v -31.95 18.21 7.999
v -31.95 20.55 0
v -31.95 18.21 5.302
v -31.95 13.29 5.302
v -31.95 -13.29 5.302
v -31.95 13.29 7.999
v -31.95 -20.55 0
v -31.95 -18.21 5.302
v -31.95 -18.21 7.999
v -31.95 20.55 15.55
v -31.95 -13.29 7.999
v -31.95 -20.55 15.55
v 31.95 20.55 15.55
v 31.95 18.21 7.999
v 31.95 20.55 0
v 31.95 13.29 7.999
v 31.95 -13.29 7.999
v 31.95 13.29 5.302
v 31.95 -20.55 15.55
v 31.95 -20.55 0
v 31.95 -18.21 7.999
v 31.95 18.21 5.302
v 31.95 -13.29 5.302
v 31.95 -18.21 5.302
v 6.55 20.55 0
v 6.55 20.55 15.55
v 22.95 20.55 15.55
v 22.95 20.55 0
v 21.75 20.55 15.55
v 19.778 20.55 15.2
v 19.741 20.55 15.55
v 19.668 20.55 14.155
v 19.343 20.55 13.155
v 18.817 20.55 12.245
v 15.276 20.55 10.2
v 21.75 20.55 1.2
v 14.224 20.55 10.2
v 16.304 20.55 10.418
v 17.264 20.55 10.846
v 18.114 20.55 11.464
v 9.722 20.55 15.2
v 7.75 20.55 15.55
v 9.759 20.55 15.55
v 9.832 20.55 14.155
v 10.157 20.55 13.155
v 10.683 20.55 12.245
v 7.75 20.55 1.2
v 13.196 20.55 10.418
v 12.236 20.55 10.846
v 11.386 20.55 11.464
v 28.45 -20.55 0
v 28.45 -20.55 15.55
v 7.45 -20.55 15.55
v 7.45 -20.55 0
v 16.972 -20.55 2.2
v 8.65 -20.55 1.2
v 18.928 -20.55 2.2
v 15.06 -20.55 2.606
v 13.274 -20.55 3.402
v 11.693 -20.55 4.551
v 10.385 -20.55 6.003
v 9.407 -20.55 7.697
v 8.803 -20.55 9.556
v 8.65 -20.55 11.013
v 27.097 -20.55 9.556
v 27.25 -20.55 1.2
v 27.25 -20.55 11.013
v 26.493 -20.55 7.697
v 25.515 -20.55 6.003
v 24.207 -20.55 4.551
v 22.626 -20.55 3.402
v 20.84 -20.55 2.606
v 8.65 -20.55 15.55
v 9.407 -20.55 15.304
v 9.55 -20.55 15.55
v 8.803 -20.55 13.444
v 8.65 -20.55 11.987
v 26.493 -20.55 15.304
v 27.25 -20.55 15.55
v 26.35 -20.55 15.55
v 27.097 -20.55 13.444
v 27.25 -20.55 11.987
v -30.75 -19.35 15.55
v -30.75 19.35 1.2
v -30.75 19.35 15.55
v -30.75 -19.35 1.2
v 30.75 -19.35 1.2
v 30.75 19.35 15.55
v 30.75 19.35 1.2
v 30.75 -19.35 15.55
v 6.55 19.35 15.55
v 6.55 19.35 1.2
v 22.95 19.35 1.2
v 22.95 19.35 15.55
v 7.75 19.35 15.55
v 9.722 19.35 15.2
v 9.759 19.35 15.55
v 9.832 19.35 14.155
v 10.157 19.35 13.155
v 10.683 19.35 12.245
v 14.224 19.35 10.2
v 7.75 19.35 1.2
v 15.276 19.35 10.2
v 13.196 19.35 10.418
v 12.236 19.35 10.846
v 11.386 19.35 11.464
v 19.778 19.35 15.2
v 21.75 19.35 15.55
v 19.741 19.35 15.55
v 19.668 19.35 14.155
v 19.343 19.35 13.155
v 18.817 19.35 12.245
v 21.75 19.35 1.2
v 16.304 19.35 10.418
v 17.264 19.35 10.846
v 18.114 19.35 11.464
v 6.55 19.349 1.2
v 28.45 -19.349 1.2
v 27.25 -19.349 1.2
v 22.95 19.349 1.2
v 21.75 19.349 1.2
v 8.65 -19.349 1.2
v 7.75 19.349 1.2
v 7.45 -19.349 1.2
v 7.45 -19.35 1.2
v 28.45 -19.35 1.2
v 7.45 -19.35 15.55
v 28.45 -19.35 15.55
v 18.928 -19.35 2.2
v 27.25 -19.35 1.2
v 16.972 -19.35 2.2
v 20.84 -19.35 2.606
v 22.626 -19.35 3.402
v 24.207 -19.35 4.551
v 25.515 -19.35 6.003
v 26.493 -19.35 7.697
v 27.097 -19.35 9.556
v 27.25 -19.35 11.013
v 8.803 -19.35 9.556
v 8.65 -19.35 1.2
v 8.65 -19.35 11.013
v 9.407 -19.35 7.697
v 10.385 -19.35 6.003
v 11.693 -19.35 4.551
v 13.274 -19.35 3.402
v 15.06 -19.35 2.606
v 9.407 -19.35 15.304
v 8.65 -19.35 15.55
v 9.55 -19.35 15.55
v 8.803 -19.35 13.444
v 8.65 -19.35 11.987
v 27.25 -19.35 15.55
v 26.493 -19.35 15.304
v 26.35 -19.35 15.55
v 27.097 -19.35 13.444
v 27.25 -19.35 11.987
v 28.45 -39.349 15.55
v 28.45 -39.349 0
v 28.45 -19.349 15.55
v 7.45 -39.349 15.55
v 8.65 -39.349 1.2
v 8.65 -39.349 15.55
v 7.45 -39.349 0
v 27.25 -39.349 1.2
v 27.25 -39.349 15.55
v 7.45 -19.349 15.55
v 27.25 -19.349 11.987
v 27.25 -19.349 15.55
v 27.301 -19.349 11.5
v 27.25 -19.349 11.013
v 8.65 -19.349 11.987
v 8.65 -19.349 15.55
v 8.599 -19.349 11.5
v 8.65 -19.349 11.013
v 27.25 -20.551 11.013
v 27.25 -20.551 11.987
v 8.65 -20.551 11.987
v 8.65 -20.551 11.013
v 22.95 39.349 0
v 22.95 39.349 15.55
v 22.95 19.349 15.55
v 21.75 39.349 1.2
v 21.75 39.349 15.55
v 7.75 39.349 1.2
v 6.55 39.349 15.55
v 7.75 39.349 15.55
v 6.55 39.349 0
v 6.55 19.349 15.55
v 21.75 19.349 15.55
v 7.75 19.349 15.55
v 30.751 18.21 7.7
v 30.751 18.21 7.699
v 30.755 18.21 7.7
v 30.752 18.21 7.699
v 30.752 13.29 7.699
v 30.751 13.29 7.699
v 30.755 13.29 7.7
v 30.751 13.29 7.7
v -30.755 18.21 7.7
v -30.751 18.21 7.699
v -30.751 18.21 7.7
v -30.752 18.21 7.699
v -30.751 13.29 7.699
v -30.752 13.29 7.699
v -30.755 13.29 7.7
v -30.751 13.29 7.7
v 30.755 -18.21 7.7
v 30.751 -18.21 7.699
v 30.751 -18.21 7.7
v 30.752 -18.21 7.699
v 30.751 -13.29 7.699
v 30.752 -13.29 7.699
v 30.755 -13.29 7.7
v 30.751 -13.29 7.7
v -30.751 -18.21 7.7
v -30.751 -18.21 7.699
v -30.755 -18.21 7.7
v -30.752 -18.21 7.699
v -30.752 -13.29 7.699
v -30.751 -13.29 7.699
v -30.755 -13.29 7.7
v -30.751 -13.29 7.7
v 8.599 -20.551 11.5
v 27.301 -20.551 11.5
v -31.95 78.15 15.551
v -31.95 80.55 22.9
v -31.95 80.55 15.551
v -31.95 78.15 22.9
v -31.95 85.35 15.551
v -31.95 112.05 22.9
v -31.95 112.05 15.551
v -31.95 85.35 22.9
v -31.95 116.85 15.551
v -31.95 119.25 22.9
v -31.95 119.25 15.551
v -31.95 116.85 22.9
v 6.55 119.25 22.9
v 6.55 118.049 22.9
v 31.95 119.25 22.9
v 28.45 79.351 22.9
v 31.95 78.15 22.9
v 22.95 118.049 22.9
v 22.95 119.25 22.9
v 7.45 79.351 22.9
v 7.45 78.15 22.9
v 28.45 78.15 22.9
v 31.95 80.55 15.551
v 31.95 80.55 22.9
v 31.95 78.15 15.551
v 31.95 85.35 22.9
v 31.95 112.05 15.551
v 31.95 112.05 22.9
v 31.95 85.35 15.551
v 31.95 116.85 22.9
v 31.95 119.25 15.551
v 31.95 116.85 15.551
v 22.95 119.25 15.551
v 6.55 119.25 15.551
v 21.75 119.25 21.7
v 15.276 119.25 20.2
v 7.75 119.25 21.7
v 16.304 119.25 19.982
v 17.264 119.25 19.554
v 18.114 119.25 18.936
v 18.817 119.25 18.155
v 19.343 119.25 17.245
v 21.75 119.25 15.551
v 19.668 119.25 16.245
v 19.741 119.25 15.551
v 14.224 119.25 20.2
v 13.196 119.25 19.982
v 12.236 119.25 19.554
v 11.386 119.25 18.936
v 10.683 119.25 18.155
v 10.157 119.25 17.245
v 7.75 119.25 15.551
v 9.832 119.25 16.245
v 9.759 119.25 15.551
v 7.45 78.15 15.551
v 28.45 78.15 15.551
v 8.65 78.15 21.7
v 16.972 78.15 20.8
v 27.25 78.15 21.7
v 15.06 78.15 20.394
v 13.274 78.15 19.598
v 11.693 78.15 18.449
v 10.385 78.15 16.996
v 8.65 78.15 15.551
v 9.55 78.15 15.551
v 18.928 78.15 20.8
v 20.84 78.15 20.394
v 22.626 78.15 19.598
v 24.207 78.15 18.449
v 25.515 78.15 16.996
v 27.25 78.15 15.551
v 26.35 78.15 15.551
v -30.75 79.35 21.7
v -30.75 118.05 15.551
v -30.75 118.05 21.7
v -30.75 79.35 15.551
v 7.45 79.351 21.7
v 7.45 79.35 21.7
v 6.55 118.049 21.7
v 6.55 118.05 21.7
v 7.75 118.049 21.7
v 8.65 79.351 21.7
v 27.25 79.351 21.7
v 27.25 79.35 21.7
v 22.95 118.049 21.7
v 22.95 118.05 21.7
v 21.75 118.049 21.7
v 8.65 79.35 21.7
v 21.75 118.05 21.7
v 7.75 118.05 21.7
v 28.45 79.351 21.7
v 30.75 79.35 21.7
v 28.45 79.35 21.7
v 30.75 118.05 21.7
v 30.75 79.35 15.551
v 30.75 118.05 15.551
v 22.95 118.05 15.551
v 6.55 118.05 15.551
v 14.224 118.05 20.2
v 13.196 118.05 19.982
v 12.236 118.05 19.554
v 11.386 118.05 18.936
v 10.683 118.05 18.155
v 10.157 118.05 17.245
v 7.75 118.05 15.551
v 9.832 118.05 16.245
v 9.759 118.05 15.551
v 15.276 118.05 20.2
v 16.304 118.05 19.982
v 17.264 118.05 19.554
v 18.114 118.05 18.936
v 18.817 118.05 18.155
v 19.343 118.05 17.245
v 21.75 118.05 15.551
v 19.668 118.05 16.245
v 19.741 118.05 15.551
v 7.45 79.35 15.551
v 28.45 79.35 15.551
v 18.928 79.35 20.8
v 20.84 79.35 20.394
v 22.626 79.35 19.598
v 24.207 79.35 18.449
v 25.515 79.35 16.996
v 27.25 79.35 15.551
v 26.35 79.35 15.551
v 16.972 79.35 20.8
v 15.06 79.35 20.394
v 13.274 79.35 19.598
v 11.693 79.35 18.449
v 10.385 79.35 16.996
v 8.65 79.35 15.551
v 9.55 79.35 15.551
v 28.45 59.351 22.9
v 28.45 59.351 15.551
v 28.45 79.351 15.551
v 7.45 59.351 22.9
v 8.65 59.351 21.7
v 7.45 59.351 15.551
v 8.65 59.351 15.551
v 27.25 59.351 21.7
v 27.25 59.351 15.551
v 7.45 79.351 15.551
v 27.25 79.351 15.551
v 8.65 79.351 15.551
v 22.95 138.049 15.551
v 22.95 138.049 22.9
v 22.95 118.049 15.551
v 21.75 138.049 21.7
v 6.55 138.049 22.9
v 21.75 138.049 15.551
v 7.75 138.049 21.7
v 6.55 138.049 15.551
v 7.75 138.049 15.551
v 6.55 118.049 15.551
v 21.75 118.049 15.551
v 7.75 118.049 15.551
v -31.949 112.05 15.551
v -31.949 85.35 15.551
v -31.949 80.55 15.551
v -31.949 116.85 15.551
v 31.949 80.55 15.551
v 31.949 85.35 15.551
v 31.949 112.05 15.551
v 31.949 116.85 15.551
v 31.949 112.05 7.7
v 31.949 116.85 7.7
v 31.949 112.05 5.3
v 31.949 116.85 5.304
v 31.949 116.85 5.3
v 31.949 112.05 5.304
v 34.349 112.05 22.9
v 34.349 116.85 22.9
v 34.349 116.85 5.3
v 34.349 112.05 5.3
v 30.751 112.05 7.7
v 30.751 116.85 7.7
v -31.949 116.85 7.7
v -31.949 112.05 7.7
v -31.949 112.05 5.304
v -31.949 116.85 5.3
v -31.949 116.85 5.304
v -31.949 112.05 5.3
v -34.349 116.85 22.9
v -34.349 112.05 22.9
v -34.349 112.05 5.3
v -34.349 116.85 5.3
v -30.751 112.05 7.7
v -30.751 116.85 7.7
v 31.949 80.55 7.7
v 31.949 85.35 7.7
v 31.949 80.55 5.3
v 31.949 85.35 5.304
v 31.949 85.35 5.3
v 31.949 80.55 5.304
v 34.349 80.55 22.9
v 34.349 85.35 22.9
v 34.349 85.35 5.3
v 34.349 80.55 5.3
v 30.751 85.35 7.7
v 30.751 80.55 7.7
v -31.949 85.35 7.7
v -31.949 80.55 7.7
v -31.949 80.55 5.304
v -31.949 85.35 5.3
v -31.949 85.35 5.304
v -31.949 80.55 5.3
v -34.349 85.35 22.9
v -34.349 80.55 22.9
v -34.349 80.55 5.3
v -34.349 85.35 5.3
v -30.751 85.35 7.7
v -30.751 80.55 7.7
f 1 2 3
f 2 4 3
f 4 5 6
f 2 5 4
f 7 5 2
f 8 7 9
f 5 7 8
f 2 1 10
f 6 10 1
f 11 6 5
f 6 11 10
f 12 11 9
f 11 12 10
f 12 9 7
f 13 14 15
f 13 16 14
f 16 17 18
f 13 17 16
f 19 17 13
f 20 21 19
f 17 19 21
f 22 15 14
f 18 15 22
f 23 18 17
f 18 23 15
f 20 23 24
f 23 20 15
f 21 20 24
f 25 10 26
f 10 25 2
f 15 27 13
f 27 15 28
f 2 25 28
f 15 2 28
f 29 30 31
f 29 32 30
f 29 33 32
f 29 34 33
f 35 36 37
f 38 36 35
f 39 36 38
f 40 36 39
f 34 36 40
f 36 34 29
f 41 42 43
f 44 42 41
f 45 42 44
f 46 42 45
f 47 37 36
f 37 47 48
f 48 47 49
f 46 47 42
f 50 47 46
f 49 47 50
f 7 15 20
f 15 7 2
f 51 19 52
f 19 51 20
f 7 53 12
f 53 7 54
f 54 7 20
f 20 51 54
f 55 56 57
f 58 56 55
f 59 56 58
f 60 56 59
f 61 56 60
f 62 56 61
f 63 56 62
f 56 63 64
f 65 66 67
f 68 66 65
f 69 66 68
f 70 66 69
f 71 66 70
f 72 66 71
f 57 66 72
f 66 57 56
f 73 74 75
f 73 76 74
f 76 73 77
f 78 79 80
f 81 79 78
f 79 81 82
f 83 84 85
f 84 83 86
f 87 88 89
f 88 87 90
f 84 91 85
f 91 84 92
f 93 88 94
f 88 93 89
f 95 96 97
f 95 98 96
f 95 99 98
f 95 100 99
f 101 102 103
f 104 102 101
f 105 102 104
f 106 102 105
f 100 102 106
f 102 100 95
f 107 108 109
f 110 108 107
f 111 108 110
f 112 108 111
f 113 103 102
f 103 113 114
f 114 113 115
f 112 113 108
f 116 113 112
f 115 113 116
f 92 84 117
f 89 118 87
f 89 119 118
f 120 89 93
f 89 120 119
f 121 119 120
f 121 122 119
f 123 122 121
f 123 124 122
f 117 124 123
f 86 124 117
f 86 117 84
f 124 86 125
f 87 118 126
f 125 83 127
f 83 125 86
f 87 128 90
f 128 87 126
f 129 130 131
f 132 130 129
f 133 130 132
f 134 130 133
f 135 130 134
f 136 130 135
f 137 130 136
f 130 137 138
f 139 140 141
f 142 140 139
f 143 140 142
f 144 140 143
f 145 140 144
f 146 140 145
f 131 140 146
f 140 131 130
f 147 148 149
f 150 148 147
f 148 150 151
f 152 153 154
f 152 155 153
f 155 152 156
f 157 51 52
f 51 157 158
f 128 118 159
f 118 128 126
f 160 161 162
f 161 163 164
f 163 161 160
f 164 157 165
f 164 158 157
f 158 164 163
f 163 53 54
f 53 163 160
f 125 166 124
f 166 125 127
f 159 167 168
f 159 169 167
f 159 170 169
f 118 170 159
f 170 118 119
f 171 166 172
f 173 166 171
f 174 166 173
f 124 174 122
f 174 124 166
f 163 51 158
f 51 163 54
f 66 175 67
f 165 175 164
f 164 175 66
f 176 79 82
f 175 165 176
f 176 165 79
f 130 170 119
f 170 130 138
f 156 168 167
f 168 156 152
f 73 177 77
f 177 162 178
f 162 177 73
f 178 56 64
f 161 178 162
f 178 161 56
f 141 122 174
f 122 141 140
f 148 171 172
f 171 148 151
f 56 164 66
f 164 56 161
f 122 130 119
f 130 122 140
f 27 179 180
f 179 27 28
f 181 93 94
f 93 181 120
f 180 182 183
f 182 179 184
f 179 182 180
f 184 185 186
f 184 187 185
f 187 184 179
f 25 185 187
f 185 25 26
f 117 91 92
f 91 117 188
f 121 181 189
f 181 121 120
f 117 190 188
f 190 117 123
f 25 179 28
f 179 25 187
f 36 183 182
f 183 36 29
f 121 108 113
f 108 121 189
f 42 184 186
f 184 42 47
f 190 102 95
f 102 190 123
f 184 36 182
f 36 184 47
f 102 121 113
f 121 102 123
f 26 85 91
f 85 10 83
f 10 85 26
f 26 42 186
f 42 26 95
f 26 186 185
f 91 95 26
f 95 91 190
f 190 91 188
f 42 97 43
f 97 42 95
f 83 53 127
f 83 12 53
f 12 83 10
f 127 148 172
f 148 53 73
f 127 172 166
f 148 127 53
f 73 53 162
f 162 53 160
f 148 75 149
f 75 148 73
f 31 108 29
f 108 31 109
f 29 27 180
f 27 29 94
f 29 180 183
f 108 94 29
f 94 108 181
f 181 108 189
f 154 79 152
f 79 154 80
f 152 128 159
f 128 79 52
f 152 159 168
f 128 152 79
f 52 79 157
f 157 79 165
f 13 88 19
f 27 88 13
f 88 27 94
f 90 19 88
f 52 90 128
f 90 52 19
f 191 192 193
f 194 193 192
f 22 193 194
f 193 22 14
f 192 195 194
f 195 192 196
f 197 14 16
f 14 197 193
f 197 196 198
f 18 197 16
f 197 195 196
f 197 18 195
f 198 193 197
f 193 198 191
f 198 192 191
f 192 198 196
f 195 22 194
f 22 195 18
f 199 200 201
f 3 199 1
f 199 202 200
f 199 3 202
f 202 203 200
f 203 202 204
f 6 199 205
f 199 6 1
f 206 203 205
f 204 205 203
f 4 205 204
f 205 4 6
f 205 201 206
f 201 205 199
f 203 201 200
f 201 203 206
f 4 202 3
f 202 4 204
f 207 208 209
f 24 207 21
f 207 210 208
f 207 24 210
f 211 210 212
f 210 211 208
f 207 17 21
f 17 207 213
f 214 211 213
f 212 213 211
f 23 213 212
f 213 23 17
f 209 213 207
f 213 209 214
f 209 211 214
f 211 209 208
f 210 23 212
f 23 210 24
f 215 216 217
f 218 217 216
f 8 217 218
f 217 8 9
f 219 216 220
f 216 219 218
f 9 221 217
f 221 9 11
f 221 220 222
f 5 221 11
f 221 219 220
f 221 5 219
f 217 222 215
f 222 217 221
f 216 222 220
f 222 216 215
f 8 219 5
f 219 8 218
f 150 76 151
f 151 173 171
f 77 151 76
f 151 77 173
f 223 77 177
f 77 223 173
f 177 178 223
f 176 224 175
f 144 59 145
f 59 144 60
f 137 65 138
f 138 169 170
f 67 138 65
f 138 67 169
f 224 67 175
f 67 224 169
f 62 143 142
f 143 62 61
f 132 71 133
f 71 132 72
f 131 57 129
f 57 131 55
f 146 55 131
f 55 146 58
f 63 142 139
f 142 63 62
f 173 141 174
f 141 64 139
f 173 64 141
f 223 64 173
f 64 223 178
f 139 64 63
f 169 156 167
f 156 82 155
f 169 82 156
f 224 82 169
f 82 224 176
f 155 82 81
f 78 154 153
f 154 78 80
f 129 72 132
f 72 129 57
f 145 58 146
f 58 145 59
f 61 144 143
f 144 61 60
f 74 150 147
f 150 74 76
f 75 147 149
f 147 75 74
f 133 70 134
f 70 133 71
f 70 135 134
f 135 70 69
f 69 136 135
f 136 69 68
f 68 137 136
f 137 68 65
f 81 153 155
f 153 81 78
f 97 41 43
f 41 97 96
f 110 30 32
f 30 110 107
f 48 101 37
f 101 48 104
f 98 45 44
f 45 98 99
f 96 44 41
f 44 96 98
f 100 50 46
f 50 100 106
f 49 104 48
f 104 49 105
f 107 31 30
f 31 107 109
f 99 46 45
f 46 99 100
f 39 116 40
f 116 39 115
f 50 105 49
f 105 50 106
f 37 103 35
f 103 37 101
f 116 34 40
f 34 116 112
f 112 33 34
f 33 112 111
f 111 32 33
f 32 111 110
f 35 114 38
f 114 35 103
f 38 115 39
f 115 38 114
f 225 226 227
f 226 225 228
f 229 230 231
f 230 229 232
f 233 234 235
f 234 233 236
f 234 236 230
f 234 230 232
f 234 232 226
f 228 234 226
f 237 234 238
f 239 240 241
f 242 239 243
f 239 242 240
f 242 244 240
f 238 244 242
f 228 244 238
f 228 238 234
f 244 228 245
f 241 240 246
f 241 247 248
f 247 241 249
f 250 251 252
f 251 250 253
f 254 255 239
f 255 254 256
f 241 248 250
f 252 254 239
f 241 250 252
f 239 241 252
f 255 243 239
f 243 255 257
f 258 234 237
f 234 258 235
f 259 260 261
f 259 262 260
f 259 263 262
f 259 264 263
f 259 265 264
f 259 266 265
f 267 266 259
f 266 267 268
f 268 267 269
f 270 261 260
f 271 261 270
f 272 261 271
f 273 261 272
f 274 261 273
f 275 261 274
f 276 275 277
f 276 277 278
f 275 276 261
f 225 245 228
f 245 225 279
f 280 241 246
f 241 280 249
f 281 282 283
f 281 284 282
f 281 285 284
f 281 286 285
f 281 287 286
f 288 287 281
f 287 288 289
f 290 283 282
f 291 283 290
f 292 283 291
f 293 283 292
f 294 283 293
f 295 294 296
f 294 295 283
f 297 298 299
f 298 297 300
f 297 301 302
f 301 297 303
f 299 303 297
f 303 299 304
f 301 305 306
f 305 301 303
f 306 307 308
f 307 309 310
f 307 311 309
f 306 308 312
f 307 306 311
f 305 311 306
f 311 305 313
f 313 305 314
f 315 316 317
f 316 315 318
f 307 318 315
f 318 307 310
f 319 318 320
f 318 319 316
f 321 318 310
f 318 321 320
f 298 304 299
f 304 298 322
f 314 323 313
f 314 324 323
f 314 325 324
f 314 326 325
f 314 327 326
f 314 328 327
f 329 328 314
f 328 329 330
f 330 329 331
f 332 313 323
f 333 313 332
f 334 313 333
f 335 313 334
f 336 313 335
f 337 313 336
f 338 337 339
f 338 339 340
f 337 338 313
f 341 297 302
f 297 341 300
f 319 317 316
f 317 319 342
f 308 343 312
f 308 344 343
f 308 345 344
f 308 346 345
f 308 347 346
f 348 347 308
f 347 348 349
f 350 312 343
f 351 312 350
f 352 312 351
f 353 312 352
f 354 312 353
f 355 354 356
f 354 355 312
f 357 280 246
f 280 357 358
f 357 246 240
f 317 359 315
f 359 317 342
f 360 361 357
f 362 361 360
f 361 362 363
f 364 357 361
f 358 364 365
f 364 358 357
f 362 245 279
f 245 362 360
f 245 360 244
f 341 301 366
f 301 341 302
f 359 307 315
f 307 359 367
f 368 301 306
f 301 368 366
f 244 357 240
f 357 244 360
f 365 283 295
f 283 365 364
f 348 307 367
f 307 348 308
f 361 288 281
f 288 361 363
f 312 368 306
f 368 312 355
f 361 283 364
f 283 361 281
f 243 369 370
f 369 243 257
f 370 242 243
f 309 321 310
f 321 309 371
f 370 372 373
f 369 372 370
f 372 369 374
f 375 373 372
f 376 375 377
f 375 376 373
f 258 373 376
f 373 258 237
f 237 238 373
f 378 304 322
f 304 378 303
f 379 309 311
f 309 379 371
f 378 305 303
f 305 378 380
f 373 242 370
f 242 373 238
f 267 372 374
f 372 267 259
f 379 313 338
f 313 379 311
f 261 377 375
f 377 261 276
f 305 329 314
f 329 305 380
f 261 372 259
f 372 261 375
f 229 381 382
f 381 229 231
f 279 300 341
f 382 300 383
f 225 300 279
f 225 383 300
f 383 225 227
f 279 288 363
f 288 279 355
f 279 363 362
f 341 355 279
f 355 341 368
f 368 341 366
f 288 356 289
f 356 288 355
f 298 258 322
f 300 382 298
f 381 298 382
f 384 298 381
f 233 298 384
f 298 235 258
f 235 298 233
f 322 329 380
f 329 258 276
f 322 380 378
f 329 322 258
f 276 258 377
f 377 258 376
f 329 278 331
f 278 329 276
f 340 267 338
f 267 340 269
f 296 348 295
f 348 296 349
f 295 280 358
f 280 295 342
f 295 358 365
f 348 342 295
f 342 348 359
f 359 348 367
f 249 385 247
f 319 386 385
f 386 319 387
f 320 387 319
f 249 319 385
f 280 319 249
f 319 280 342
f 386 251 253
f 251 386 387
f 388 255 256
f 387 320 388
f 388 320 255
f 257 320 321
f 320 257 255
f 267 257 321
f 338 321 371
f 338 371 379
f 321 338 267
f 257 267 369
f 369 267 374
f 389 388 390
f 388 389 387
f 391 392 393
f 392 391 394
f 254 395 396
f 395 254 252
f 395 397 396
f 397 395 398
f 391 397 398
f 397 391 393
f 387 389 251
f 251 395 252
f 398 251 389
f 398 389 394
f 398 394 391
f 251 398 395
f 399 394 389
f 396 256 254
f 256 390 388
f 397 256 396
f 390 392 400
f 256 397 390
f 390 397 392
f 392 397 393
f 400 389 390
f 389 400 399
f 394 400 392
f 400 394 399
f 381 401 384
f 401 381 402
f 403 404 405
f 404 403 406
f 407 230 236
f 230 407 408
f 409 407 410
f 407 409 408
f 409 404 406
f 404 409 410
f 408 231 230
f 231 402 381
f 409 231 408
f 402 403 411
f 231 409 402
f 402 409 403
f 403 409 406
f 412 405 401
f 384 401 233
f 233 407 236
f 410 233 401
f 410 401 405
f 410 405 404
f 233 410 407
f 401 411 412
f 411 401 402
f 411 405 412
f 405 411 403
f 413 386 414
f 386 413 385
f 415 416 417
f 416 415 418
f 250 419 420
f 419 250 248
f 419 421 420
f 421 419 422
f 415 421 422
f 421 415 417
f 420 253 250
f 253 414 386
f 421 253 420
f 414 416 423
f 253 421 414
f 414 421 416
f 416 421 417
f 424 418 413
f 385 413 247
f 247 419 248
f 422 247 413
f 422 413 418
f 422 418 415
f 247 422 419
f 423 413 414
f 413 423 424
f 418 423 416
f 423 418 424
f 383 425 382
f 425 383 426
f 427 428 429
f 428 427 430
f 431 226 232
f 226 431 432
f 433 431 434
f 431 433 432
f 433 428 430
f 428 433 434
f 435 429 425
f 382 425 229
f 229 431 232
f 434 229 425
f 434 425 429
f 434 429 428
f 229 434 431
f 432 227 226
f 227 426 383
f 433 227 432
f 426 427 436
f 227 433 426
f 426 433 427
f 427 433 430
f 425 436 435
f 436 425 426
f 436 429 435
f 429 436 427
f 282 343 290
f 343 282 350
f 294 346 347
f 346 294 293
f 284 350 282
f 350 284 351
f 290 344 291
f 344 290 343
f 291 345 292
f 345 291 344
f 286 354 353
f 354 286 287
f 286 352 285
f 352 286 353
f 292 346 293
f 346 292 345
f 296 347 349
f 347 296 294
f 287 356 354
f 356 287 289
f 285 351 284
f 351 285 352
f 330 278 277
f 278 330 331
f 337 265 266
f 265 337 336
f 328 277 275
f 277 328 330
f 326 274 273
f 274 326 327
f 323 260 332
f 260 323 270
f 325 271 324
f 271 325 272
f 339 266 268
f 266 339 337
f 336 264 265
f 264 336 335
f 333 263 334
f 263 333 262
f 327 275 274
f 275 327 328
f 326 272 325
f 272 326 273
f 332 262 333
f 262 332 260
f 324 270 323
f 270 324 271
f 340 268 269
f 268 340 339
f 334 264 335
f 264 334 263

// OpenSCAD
// file: ../lib/shapes.scad
module prism(l, w, h) {
	translate([-w/2, -l/2, -h/2]) polyhedron(points=[
		[0,0,h],
		[0,0,0],[w,0,0],
		[0,l,h],
		[0,l,0],[w,l,0]
	], faces=[
		[0,2,1],
		[3,4,5],
		[0,1,4,3],
		[1,2,5,4],
		[0,3,5,2],
	]);
}
// file: ../lib/bevel.scad
module bevel(l, s, oe=0.1) {
	scale([-1, 1, 1])
	rotate([0, -90, 0])
	linear_extrude(l)
	difference() {
		translate([-oe, -oe]) square([s, s]);
		translate([s, s]) circle(r=s, center=true);
	}
}


module bevel_inv(l, s) {
	scale([-1, 1, 1])
	rotate([0, -90, 0])
	linear_extrude(l)
	difference() {
		square([s, s]);
		difference() {
			square([s, s]);
			translate([s, s]) circle(r=s, center=true);
		}
	}
}
// file: ../lib/box.scad
use <../lib/util.scad>;
use <../lib/hole.scad>;
use <../lib/bevel.scad>;
use <../lib/shapes.scad>;

$fn = 30;

module case_shell(size, fsize, hole, thickness, clearance, style) {
	c = hole*2;
	difference() {
		union() {
			difference() {
				cube(size+repeat(thickness*2, 3), center=true);
				cube(size, center=true);
			}
			if (style == "hole") {
				mirror_all() translate([(fsize[0])/2-c/2, 0, -(fsize[2])/2]) {
					translate([0, -fsize[1]/2 + c/2, fsize[2]/2]) 
					difference() {
						cube([c, c, fsize[2]], center=true);
						rotate([0, 0, -90]) translate([-c/2-0.005, -c/2-0.005, size[2]/2+0.001]) rotate([0, 90, 0]) bevel(fsize[2]+0.002, c/2+0.005);
					}
				}
			}
		}
		mirror_all() translate([fsize[0]/2+0.001, fsize[1]/2+0.001, fsize[2]/2+ 0.001])
		rotate([0, 90, 180]) bevel(fsize[2]+0.002, c/2+0.005);
	}
}

module holes(hole, d, thickness, size, fsize) {
	c = hole/2+thickness*2;
	for (r = [0 : 180 : 180]) {
		rotate([0, 180, r]) translate([fsize[0]/2, 0, fsize[2]/2]) {
			translate([- c, fsize[1]/2-c, 0]) hole(d, size[2]+0.01, 1, true);
			translate([- c, -(fsize[1]/2-c), 0]) hole(d, size[2]+0.01, 1, true);
		}
	}
}

module box_base(length, width, height, thickness, style="hole", hole=0, clearance = 0.1, hm=0, extend=50) {
	size = [length, width, height];
	fsize = size+repeat(thickness*2, 3);
	difference() {
		translate([0, 0, fsize[2]/2])
		difference() {
			union() {
				case_shell(size, fsize, hole, thickness, clearance, style);
				translate([0, 0, -fsize[2]/2]) {
					children();
				}
			}
			cutoff = fsize+repeat(extend, 3);
			translate([0, 0, cutoff[2]/2-fsize[2]/2+thickness+hm*height]) cube(cutoff, center=true);
			
			if (style == "hole") {
				holes(hole, hole - clearance, thickness, size, fsize);
			}
		}
		if (style == "snap") {
			box_snap(size, fsize, thickness, 1 - hm, false);
		}
	}
}

module box_top(length, width, height, thickness, style="hole", hole=0, clearance = 0.1, hm=1, extend=50) {
	size = [length, width, height];
	fsize = size+repeat(thickness*2, 3);
	translate([0, 0, fsize[2]/2])
	difference() {
		union() {
			case_shell(size, fsize, hole, thickness, clearance, style);
			translate([0, 0, -fsize[2]/2]) {
				children();
			}
		}
		cutoff = fsize+repeat(extend, 3);
		translate([0, 0, -cutoff[2]/2+fsize[2]/2-thickness-hm*height+0.001]) cube(cutoff, center=true);
		
		if (style == "hole") {
			translate([0, 0, -thickness]) holes(hole, hole + clearance, thickness, size, fsize);
		}
	}
	if (style == "snap") {
		box_snap(size, fsize, thickness, hm, true);
	}
}

module box_snap(size, fsize, thickness, hm, top) {
	height = size[2];
	offset = 0;
	width = thickness * 4;
	ewidth = top ? 0 : thickness*0.1;
	catch_slant_height = 0.25 * thickness;
	l = (hm + 0.5) * size[2] + thickness + (top ? 0 : 0); //thickness * catch_slant_height / 3);
	mirror_all() {
		translate([fsize[0]/2-0.001, fsize[1]/2 - width - thickness * 2, fsize[2] - l]) {
			if (top) { cube([thickness*2, width, l]); }
			else {
				translate([-thickness/2+0.002, width/2, thickness*2 + catch_slant_height/2 -0.001]) rotate([0, 0, 180]) prism(width+ewidth, thickness, catch_slant_height);
			}
			translate([-thickness/2+0.002, width/2, thickness]) rotate([180, 0, 180]) prism(width+ewidth, thickness, thickness * 2);
		}
	}
}

box_base(30, 20, 10, 4, 1);
translate([0, 20*1.5, 0]) box_top(30, 20, 10, 4, 1);
// file: ../lib/util.scad
function repeat(x, c) = [for (i = [1 : c]) x];

module cube_centered_xy(s) {
	translate([0, 0, s[2]/2]) cube(s, center=true);
}

module cube_shell(size, wall_thickness, center=false) {
	if (center) {
		cube_shell_int(size, wall_thickness);
	} else {
		translate([size[0]/2 + wall_thickness, size[1]/2 + wall_thickness, 0])
		cube_shell_int(size, wall_thickness);
	}
}

module cube_shell_int(size, wall_thickness) {
	difference() {
		cube_centered_xy(size + [wall_thickness*2, wall_thickness*2, wall_thickness]);
		translate([0, 0, wall_thickness]) cube_centered_xy(size + [0, 0, 0.001]);
	}
}

module rotate_all(increment=90) {
	for (i = [0 : increment : 360]) {
		rotate(i) children();
	}
}

module mirror_all() {
	children();
	scale([-1, 1, 1]) children();
	scale([1, -1, 1]) children();
	scale([-1, -1, 1]) children();
}
// file: ../lib/hole.scad
module cylinder_outer(h,d=undef,d1=undef,d2=undef,fn=15) {
	fudge = cos(180/fn);
	cylinder(h=h,d=d/fudge,d1=d1/fudge,d2=d2/fudge,$fn=fn);
}

module hole(d, height, countersink=0, extra_above=false) {
	height = height - countersink;
	translate([0, 0, -(height+countersink)]) {
		translate([0, 0, height+0.001]) cylinder_outer(d1=d, d2=d*1.5, h=countersink);
		if (extra_above) {
			translate([0, 0, height+0.001]) cylinder_outer(d1=d, d2=d*2, h=countersink*3/2);
		}
		if (height > 0)
			translate([0, 0, -2]) cylinder_outer(d=d, h=height+2.1);
	}
}

module nut_trap(w, h, sides, center=false){
	cylinder(r = w / 2 / cos(180 / 6) + 0.05, h=h, $fn=6, center=center);
}

module rim(id, od, h) {
	difference() {
		cylinder_outer(h=h, d=od);
		translate([0, 0, -1]) cylinder(h=h+2, d=id);
	}
}

rim(8.5, 13, 2);
// main file
// box which houses a TRS-1002L isolator

isolator_width = 38.5 + 0.2;
isolator_length = 61.4 + 0.1;
isolator_height = 20.5; // Actually 20 but we don't want to cover the entire thing
isolator_offset = 9.5;
isolator_cutout_diameter = 18.6;
isolator_cutout_offset_width = 3.5;
isolator_cutout_offset_height = 1.0;
isolator_cutout2_diameter = 10;
isolator_cutout2_offset_width = 11;
isolator_cutout2_offset_height = 9;
isolator_cutout2_extra_width = 2;

$fn = 30;

wall_thickness = 1.2;

use <../lib/hole.scad>;
use <../lib/util.scad>;
use <../lib/box.scad>;

module isolator() {
	difference() {
		children();
		
		translate([0, -isolator_width/2, wall_thickness])
		scale([1, -1, 1])
		isolator_cutout(isolator_cutout_diameter, isolator_cutout_offset_width, isolator_cutout_offset_height);
		
		translate([0, isolator_width/2, wall_thickness]) isolator_cutout(isolator_cutout2_diameter, isolator_cutout2_offset_width, isolator_cutout2_offset_height);
	}
}

isolator()
box_base(isolator_length, isolator_width, isolator_height, wall_thickness, "snap", hm=0.7)
isolator_cutout_shrouds();

translate([0, isolator_width+60, 0])
isolator()
box_top(isolator_length, isolator_width, isolator_height, wall_thickness, "snap", hm=0.3)
isolator_cutout_shrouds();

bodge = 0.002;

module isolator_cutout_shrouds() {
		translate([0, -isolator_width/2, 0])
		scale([1, -1, 1])
		isolator_cutout_shroud(isolator_cutout_diameter, isolator_cutout_offset_width, isolator_cutout_offset_height);

		translate([0, isolator_width/2, 0])
		isolator_cutout_shroud(isolator_cutout2_diameter, isolator_cutout2_offset_width, isolator_cutout2_offset_height, ew=isolator_cutout2_extra_width);
}

module isolator_cutout(d, w, h) {
	translate([isolator_length/2 - (d/2 + w), -bodge/2, d/2 + h])
	rotate([90, 0, 180])
		cylinder_outer(h=wall_thickness+bodge, d=d,fn=$fn);
}

module isolator_cutout_shroud(d, w, h, l=20, ew=0) {
	fh = isolator_height+wall_thickness*2;
	translate([isolator_length/2 - (d/2 + w), -bodge/2, fh/2])
	rotate([90, 0, 180])
	difference() {
		cube_centered_xy([d+wall_thickness*2+ew*2, fh, l]);
		translate([0, 0, -1]) cube_centered_xy([d+ew*2, fh-wall_thickness*2, l+2]);
	}
}
